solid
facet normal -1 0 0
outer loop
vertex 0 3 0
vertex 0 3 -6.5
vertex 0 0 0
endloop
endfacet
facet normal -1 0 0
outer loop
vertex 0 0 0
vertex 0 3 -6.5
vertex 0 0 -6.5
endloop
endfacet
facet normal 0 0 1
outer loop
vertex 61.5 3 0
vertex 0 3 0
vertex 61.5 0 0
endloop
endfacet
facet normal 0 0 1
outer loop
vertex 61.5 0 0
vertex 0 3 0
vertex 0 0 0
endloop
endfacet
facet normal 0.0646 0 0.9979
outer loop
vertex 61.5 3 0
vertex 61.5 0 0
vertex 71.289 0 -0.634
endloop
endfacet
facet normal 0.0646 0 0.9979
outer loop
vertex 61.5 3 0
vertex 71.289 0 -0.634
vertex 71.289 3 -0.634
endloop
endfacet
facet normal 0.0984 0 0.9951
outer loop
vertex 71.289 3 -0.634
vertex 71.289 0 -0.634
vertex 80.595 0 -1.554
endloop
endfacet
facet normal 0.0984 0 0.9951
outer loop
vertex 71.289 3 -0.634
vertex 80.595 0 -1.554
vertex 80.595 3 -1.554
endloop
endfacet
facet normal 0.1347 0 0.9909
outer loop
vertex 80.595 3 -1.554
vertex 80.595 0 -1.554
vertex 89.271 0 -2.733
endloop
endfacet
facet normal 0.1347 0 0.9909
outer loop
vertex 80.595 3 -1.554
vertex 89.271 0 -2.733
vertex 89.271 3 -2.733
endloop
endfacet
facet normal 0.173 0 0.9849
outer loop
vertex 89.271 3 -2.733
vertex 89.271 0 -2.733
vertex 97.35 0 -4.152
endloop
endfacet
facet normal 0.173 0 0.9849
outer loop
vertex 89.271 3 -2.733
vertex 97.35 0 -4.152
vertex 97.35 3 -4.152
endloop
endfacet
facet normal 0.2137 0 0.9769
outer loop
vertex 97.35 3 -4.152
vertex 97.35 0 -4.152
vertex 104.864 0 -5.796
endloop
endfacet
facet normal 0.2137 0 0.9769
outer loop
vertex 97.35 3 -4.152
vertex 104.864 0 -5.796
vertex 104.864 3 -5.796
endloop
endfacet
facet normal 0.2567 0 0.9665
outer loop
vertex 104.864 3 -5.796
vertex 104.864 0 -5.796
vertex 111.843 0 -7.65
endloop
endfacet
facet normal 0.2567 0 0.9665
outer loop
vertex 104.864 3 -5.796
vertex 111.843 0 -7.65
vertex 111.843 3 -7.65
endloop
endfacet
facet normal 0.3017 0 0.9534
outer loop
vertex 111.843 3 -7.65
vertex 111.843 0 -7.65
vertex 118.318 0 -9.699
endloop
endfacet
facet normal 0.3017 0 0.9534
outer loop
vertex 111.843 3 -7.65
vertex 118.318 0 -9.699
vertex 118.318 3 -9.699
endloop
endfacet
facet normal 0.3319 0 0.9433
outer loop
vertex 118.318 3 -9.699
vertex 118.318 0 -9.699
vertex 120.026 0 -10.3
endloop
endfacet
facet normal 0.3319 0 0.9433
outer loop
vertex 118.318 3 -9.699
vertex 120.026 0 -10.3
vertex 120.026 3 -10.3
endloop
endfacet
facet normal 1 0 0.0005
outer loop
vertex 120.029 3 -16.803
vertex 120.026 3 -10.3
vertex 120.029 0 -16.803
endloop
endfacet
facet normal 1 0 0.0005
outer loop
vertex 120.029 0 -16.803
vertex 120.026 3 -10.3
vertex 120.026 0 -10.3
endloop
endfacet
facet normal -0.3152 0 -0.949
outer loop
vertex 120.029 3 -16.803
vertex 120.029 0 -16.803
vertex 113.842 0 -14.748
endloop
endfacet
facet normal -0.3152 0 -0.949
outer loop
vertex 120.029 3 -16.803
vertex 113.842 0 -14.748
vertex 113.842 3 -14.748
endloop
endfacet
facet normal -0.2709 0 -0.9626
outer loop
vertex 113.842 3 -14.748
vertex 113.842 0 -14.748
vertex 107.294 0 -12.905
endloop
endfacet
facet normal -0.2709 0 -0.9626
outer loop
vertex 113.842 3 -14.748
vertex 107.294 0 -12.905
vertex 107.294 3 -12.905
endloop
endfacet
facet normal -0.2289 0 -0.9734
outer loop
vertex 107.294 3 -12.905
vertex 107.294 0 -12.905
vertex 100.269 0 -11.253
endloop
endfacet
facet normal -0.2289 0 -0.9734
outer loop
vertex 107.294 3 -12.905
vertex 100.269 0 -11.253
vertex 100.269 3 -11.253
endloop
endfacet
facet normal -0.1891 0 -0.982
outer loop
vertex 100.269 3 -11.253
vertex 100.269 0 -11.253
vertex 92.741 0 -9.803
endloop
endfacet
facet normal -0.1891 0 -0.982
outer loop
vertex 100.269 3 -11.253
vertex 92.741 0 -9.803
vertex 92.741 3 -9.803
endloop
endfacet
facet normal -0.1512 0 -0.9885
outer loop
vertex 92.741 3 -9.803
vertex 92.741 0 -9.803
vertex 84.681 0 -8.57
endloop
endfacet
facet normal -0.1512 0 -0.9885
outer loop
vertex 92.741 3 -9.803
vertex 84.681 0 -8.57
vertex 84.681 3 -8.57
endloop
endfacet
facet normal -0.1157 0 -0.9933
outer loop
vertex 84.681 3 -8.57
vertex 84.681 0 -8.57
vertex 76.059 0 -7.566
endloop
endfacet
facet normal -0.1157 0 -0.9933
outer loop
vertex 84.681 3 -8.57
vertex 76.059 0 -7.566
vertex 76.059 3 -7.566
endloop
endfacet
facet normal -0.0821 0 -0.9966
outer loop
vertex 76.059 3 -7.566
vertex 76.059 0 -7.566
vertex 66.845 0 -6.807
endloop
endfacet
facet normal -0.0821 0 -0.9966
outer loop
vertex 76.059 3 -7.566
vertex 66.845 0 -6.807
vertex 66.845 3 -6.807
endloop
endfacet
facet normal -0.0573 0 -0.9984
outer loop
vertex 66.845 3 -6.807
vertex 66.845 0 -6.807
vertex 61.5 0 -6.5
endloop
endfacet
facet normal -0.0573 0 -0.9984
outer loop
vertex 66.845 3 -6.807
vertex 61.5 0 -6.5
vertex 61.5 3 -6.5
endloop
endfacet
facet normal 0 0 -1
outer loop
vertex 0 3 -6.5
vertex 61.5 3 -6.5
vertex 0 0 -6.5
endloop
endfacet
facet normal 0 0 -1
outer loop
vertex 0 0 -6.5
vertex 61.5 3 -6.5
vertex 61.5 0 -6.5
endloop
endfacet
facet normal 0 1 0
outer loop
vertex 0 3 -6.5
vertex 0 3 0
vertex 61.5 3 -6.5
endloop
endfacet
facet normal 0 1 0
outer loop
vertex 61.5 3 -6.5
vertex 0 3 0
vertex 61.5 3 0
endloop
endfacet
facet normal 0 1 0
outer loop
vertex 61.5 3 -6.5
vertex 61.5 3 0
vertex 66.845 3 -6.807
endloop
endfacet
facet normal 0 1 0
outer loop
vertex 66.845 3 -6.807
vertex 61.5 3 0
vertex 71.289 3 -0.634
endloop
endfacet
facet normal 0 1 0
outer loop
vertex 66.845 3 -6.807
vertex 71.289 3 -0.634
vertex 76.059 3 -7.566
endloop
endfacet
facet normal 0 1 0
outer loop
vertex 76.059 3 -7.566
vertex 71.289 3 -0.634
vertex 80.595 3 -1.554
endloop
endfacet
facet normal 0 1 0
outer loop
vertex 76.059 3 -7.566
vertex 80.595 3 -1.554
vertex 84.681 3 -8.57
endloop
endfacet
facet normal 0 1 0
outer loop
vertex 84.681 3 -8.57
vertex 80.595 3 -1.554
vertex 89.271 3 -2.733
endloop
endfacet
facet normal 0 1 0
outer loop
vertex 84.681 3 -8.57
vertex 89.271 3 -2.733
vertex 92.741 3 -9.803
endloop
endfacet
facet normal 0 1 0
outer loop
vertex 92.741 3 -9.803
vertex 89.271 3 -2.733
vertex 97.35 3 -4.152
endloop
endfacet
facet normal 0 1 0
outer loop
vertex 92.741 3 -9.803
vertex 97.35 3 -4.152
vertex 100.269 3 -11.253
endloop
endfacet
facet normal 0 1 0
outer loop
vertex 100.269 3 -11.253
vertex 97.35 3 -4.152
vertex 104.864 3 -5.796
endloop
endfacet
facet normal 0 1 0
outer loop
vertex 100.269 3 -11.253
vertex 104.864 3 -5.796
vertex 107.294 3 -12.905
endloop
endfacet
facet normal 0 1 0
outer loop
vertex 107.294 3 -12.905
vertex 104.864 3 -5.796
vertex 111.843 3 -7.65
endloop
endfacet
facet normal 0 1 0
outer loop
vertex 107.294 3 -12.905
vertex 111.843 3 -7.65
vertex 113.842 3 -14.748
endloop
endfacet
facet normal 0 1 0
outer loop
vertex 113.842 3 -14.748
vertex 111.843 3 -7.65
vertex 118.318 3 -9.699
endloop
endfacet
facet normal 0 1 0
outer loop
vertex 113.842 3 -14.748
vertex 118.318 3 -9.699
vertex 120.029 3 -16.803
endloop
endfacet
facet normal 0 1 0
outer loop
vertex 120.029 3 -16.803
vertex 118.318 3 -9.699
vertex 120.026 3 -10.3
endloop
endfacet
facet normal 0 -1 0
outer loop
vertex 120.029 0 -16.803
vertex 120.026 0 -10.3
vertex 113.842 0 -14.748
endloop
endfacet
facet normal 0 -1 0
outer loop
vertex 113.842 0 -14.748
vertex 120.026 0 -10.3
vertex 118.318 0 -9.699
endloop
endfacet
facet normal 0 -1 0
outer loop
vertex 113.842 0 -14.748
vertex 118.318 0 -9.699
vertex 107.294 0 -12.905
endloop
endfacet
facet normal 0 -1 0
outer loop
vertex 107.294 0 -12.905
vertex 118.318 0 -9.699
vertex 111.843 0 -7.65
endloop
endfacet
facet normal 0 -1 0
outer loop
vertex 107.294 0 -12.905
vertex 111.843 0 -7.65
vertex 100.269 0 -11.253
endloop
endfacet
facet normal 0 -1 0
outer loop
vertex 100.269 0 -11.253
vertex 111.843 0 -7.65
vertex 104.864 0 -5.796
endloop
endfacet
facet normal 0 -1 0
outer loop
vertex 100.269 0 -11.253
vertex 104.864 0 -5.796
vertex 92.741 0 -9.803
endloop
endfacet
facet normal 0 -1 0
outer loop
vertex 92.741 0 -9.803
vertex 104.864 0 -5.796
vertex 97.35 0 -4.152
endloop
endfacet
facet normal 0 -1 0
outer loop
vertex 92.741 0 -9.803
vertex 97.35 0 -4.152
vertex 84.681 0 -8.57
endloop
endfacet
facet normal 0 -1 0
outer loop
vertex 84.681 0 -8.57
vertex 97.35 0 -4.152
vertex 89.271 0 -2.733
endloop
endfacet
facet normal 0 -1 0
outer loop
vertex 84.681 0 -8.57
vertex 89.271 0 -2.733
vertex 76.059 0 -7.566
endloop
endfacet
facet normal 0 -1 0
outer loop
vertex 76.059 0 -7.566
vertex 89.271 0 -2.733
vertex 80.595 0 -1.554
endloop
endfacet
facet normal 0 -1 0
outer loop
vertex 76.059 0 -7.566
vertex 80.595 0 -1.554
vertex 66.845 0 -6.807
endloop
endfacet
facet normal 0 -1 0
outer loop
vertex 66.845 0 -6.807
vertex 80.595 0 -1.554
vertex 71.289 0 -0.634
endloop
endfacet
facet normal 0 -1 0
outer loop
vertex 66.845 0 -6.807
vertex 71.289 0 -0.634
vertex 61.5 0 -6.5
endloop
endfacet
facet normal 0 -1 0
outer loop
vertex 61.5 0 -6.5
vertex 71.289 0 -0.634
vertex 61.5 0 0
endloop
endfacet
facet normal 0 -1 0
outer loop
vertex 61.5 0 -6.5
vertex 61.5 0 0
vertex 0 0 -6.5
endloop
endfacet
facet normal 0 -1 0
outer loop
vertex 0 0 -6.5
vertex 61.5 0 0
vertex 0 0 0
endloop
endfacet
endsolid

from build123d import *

# Parameters (mm, degrees)
BOSS_EXTRUDE1_DEPTH = 3


with BuildPart() as part:
    # Sketch1 → Boss-Extrude1 (new body)
    with BuildSketch(Plane(origin=(0, 0, 0), x_dir=(1, 0, 0), z_dir=(0, 1, 0))):
        with BuildLine():
            Line((0, 0), (61.5, 0))
            add(Edge.make_bspline(
                [(61.5, 0), (96.079868576, 1.689945504), (120.026085552, 10.3)],
                knots=[0, 0, 0, 1, 1, 1], degree=2))
            Line((120.026085552, 10.3), (120.028762053, 16.803234674))
            add(Edge.make_bspline(
                [(61.5, 6.5), (96.082545077, 8.193180177), (120.028762053, 16.803234674)],
                knots=[0, 0, 0, 1, 1, 1], degree=2))
            Line((61.5, 6.5), (0, 6.5))
            Line((0, 6.5), (0, 0))
        make_face()
    extrude(amount=BOSS_EXTRUDE1_DEPTH)


solid = part.part
